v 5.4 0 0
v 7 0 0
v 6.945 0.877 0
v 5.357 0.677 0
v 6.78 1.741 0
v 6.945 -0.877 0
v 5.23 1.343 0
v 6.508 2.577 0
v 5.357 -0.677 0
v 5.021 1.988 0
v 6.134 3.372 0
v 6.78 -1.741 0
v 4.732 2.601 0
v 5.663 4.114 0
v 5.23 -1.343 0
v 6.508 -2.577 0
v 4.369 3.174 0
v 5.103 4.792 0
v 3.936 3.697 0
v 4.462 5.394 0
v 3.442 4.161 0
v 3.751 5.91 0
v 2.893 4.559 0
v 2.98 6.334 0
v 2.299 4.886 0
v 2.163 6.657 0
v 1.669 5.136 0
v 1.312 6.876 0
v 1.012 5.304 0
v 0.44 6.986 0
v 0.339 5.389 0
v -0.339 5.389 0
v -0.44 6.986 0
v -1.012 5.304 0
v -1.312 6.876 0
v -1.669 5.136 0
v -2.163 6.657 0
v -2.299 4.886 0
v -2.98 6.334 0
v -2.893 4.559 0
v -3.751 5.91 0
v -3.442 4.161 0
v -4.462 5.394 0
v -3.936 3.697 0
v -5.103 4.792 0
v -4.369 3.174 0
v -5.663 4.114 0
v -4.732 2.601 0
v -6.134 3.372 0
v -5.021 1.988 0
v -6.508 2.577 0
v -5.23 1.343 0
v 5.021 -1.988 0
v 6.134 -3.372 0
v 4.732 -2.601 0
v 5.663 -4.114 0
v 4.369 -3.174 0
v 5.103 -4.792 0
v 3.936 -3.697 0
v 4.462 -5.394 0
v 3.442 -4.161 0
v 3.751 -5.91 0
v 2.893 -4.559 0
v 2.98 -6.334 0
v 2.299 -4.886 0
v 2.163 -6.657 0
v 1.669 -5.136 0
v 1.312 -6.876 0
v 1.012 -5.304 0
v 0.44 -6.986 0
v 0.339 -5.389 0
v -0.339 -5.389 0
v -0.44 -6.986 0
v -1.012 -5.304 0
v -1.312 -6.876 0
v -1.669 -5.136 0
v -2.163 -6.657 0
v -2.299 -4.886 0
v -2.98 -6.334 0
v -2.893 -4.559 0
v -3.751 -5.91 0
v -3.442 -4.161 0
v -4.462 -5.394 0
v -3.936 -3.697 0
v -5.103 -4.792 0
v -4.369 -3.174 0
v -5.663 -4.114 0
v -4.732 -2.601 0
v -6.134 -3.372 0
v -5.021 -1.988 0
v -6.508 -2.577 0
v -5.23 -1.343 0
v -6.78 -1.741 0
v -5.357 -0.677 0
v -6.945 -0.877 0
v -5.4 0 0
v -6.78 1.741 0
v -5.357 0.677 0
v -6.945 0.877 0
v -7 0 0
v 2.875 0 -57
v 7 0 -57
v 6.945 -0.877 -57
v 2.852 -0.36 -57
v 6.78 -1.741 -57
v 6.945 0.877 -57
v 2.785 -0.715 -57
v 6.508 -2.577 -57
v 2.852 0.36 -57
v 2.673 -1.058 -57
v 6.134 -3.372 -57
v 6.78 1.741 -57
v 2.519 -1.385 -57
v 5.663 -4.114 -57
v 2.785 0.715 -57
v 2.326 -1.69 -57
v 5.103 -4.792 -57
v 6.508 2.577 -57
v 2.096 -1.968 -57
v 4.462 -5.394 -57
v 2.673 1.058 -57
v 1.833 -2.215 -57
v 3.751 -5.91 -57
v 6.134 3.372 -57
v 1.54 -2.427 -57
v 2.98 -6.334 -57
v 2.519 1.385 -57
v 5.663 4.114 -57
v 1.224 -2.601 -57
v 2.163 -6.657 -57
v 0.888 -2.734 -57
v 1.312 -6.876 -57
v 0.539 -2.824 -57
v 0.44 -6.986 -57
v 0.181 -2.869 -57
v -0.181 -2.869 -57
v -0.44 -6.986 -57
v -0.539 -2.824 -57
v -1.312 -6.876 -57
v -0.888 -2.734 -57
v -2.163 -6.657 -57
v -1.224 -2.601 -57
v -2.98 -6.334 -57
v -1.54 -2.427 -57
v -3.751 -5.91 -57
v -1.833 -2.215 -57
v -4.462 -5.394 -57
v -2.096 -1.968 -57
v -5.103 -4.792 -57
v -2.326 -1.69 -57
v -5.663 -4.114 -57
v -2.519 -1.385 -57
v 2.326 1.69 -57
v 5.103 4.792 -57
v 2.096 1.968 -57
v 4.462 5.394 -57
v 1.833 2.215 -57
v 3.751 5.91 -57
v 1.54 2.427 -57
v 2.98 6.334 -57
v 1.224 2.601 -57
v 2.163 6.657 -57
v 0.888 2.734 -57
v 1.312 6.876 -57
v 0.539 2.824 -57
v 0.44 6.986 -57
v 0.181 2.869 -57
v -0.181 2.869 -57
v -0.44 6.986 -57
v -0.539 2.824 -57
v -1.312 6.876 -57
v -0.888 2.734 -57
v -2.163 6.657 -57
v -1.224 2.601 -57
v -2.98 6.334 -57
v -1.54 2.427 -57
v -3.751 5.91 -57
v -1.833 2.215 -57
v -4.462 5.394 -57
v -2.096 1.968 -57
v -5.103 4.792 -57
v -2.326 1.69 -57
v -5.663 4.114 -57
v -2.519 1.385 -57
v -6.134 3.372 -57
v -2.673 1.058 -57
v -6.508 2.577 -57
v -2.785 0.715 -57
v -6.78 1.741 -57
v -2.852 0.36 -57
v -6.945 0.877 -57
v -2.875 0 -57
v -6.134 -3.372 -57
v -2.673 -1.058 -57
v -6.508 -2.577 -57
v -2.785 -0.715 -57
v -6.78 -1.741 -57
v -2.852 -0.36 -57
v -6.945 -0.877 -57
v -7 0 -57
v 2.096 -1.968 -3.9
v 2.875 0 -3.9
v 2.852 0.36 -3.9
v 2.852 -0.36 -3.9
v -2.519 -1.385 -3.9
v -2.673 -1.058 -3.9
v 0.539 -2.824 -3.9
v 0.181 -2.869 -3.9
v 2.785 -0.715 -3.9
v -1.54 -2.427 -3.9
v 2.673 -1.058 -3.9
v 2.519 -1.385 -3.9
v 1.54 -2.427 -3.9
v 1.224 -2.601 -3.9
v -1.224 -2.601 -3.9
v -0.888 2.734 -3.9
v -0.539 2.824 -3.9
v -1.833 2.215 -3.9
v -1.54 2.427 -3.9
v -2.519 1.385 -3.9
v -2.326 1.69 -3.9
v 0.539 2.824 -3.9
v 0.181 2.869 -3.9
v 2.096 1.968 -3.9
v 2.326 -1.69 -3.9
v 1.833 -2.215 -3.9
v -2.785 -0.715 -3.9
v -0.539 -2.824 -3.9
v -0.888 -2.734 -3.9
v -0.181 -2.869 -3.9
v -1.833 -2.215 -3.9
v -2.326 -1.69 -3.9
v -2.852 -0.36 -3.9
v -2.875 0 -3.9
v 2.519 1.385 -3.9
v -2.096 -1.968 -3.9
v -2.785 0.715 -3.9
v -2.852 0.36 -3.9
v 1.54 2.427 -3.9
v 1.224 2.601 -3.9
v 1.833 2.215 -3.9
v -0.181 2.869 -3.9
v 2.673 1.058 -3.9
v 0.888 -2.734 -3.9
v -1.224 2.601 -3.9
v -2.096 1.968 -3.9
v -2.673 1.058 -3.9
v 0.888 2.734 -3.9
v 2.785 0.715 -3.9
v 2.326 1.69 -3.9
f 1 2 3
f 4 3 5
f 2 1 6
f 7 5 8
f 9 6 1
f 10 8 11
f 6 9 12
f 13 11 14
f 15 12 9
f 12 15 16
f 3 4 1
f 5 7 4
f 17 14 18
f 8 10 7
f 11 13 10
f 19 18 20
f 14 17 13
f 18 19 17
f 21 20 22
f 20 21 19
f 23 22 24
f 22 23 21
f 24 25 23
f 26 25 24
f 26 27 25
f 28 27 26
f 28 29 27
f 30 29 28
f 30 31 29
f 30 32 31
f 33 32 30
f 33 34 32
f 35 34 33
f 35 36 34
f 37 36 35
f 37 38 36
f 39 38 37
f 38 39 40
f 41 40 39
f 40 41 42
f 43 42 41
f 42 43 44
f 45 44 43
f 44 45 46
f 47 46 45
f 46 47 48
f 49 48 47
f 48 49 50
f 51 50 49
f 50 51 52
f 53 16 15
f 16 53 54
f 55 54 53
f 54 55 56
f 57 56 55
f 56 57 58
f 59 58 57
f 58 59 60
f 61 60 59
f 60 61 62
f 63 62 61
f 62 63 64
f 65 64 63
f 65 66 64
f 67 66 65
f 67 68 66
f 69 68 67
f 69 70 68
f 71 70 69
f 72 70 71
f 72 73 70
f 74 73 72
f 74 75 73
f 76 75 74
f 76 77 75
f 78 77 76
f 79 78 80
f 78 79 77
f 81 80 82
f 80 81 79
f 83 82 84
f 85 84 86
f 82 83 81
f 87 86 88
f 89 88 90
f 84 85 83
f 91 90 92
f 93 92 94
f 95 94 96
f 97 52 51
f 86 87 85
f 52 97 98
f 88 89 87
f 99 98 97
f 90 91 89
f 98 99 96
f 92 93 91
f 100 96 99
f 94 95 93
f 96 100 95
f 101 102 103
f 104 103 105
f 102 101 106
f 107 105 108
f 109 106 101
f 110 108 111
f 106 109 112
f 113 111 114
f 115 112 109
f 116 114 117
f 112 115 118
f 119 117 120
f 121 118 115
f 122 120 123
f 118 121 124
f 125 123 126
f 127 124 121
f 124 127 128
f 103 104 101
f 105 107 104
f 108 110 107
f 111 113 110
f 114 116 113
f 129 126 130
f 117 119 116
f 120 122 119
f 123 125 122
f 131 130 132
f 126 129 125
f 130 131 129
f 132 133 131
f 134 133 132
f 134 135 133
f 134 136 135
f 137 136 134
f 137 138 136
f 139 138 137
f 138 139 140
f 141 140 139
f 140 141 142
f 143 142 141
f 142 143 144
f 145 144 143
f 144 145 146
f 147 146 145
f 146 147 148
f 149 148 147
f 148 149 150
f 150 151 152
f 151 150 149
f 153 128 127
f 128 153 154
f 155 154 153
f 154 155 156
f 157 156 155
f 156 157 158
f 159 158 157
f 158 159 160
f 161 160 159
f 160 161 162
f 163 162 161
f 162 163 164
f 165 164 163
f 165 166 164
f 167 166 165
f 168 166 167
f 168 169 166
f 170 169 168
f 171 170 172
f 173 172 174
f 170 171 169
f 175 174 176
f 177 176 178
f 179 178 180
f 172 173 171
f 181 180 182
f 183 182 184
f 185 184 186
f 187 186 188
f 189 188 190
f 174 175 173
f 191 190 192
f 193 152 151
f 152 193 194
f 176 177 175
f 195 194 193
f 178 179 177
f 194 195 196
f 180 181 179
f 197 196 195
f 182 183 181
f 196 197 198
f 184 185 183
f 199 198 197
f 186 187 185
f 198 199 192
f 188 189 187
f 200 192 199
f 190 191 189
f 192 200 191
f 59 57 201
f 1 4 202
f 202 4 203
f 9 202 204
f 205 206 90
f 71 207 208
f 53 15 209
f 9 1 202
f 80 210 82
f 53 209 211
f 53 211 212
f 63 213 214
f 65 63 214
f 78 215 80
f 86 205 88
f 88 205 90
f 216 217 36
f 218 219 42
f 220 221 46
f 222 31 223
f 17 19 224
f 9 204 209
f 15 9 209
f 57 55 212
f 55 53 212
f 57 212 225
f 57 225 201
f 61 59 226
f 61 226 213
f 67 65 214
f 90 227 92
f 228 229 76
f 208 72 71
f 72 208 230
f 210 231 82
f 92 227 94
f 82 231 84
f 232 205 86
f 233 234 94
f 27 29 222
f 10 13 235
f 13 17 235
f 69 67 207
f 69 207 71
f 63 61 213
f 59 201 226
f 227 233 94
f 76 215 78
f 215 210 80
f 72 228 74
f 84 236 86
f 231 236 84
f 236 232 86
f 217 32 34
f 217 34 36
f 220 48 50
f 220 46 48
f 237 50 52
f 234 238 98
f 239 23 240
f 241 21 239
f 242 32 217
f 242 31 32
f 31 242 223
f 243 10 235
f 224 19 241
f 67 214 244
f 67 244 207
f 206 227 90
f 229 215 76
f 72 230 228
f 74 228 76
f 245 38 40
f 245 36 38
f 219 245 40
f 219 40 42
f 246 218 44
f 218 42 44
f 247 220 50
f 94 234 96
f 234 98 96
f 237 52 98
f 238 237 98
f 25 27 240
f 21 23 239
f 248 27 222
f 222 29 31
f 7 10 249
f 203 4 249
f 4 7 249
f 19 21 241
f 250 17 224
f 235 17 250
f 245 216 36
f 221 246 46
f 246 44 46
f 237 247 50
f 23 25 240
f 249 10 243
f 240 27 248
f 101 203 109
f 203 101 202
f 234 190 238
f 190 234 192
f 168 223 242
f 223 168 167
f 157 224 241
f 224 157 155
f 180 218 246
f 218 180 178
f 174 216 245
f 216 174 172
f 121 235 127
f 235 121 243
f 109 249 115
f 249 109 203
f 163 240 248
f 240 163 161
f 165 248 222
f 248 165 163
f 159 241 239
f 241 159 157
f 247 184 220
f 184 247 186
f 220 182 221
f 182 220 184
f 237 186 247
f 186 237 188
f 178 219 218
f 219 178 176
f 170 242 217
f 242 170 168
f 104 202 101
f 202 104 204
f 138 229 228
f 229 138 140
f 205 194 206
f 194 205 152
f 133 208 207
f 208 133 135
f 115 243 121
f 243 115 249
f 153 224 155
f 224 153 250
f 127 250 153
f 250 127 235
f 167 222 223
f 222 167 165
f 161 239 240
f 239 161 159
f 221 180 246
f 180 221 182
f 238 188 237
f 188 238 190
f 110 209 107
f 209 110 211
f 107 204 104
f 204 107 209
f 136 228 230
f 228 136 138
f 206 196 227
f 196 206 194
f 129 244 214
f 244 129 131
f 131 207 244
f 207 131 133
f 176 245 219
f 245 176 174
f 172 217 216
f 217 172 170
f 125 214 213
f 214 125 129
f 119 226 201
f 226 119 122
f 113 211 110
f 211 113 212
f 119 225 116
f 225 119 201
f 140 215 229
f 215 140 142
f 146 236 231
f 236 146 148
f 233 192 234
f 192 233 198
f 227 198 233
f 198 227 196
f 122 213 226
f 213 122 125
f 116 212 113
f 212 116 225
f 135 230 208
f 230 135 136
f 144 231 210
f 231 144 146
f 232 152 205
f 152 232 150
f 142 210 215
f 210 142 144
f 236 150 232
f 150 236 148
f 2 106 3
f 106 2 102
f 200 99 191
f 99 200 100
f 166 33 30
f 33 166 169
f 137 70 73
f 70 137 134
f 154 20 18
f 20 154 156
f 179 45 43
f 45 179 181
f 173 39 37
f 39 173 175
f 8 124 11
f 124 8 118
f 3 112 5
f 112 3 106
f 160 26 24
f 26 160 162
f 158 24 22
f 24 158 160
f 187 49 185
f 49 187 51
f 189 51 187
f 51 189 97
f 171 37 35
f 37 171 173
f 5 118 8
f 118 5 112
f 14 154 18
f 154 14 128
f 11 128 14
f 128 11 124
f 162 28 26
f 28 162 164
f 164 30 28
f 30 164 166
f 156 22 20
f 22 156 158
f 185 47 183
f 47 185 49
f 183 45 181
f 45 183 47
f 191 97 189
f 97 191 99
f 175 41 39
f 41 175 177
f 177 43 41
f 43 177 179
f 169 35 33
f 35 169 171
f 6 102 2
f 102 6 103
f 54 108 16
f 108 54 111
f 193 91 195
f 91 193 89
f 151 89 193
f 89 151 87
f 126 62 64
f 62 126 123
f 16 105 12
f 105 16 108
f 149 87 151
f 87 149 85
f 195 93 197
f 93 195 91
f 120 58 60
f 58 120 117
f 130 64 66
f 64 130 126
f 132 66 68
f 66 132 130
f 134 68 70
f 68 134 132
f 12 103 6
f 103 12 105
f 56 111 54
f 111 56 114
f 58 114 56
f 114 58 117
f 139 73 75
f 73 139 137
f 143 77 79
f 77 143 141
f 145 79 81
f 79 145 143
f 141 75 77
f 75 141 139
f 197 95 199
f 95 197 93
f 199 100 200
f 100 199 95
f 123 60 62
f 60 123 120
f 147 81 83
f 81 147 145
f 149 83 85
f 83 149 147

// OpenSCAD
$fn = 50;


difference() {
	union() {
		translate(v = [0, 0, -57.0000000000]) {
			cylinder(h = 57, r = 7.0000000000);
		}
		cylinder(h = 0, r = 17.0000000000);
	}
	union() {
		translate(v = [0, 0, 0]) {
			rotate(a = [0, 0, 0]) {
				difference() {
					union() {
						#translate(v = [0, 0, -57.0000000000]) {
							cylinder(h = 57, r = 2.6000000000);
						}
						#translate(v = [0, 0, -3.9000000000]) {
							cylinder(h = 3.9000000000, r = 7.0000000000, r1 = 2.8750000000, r2 = 5.4000000000);
						}
						#translate(v = [0, 0, -57.0000000000]) {
							cylinder(h = 57, r = 2.8750000000);
						}
						#translate(v = [0, 0, -57.0000000000]) {
							cylinder(h = 57, r = 2.6000000000);
						}
					}
					union();
				}
			}
		}
	}
}
